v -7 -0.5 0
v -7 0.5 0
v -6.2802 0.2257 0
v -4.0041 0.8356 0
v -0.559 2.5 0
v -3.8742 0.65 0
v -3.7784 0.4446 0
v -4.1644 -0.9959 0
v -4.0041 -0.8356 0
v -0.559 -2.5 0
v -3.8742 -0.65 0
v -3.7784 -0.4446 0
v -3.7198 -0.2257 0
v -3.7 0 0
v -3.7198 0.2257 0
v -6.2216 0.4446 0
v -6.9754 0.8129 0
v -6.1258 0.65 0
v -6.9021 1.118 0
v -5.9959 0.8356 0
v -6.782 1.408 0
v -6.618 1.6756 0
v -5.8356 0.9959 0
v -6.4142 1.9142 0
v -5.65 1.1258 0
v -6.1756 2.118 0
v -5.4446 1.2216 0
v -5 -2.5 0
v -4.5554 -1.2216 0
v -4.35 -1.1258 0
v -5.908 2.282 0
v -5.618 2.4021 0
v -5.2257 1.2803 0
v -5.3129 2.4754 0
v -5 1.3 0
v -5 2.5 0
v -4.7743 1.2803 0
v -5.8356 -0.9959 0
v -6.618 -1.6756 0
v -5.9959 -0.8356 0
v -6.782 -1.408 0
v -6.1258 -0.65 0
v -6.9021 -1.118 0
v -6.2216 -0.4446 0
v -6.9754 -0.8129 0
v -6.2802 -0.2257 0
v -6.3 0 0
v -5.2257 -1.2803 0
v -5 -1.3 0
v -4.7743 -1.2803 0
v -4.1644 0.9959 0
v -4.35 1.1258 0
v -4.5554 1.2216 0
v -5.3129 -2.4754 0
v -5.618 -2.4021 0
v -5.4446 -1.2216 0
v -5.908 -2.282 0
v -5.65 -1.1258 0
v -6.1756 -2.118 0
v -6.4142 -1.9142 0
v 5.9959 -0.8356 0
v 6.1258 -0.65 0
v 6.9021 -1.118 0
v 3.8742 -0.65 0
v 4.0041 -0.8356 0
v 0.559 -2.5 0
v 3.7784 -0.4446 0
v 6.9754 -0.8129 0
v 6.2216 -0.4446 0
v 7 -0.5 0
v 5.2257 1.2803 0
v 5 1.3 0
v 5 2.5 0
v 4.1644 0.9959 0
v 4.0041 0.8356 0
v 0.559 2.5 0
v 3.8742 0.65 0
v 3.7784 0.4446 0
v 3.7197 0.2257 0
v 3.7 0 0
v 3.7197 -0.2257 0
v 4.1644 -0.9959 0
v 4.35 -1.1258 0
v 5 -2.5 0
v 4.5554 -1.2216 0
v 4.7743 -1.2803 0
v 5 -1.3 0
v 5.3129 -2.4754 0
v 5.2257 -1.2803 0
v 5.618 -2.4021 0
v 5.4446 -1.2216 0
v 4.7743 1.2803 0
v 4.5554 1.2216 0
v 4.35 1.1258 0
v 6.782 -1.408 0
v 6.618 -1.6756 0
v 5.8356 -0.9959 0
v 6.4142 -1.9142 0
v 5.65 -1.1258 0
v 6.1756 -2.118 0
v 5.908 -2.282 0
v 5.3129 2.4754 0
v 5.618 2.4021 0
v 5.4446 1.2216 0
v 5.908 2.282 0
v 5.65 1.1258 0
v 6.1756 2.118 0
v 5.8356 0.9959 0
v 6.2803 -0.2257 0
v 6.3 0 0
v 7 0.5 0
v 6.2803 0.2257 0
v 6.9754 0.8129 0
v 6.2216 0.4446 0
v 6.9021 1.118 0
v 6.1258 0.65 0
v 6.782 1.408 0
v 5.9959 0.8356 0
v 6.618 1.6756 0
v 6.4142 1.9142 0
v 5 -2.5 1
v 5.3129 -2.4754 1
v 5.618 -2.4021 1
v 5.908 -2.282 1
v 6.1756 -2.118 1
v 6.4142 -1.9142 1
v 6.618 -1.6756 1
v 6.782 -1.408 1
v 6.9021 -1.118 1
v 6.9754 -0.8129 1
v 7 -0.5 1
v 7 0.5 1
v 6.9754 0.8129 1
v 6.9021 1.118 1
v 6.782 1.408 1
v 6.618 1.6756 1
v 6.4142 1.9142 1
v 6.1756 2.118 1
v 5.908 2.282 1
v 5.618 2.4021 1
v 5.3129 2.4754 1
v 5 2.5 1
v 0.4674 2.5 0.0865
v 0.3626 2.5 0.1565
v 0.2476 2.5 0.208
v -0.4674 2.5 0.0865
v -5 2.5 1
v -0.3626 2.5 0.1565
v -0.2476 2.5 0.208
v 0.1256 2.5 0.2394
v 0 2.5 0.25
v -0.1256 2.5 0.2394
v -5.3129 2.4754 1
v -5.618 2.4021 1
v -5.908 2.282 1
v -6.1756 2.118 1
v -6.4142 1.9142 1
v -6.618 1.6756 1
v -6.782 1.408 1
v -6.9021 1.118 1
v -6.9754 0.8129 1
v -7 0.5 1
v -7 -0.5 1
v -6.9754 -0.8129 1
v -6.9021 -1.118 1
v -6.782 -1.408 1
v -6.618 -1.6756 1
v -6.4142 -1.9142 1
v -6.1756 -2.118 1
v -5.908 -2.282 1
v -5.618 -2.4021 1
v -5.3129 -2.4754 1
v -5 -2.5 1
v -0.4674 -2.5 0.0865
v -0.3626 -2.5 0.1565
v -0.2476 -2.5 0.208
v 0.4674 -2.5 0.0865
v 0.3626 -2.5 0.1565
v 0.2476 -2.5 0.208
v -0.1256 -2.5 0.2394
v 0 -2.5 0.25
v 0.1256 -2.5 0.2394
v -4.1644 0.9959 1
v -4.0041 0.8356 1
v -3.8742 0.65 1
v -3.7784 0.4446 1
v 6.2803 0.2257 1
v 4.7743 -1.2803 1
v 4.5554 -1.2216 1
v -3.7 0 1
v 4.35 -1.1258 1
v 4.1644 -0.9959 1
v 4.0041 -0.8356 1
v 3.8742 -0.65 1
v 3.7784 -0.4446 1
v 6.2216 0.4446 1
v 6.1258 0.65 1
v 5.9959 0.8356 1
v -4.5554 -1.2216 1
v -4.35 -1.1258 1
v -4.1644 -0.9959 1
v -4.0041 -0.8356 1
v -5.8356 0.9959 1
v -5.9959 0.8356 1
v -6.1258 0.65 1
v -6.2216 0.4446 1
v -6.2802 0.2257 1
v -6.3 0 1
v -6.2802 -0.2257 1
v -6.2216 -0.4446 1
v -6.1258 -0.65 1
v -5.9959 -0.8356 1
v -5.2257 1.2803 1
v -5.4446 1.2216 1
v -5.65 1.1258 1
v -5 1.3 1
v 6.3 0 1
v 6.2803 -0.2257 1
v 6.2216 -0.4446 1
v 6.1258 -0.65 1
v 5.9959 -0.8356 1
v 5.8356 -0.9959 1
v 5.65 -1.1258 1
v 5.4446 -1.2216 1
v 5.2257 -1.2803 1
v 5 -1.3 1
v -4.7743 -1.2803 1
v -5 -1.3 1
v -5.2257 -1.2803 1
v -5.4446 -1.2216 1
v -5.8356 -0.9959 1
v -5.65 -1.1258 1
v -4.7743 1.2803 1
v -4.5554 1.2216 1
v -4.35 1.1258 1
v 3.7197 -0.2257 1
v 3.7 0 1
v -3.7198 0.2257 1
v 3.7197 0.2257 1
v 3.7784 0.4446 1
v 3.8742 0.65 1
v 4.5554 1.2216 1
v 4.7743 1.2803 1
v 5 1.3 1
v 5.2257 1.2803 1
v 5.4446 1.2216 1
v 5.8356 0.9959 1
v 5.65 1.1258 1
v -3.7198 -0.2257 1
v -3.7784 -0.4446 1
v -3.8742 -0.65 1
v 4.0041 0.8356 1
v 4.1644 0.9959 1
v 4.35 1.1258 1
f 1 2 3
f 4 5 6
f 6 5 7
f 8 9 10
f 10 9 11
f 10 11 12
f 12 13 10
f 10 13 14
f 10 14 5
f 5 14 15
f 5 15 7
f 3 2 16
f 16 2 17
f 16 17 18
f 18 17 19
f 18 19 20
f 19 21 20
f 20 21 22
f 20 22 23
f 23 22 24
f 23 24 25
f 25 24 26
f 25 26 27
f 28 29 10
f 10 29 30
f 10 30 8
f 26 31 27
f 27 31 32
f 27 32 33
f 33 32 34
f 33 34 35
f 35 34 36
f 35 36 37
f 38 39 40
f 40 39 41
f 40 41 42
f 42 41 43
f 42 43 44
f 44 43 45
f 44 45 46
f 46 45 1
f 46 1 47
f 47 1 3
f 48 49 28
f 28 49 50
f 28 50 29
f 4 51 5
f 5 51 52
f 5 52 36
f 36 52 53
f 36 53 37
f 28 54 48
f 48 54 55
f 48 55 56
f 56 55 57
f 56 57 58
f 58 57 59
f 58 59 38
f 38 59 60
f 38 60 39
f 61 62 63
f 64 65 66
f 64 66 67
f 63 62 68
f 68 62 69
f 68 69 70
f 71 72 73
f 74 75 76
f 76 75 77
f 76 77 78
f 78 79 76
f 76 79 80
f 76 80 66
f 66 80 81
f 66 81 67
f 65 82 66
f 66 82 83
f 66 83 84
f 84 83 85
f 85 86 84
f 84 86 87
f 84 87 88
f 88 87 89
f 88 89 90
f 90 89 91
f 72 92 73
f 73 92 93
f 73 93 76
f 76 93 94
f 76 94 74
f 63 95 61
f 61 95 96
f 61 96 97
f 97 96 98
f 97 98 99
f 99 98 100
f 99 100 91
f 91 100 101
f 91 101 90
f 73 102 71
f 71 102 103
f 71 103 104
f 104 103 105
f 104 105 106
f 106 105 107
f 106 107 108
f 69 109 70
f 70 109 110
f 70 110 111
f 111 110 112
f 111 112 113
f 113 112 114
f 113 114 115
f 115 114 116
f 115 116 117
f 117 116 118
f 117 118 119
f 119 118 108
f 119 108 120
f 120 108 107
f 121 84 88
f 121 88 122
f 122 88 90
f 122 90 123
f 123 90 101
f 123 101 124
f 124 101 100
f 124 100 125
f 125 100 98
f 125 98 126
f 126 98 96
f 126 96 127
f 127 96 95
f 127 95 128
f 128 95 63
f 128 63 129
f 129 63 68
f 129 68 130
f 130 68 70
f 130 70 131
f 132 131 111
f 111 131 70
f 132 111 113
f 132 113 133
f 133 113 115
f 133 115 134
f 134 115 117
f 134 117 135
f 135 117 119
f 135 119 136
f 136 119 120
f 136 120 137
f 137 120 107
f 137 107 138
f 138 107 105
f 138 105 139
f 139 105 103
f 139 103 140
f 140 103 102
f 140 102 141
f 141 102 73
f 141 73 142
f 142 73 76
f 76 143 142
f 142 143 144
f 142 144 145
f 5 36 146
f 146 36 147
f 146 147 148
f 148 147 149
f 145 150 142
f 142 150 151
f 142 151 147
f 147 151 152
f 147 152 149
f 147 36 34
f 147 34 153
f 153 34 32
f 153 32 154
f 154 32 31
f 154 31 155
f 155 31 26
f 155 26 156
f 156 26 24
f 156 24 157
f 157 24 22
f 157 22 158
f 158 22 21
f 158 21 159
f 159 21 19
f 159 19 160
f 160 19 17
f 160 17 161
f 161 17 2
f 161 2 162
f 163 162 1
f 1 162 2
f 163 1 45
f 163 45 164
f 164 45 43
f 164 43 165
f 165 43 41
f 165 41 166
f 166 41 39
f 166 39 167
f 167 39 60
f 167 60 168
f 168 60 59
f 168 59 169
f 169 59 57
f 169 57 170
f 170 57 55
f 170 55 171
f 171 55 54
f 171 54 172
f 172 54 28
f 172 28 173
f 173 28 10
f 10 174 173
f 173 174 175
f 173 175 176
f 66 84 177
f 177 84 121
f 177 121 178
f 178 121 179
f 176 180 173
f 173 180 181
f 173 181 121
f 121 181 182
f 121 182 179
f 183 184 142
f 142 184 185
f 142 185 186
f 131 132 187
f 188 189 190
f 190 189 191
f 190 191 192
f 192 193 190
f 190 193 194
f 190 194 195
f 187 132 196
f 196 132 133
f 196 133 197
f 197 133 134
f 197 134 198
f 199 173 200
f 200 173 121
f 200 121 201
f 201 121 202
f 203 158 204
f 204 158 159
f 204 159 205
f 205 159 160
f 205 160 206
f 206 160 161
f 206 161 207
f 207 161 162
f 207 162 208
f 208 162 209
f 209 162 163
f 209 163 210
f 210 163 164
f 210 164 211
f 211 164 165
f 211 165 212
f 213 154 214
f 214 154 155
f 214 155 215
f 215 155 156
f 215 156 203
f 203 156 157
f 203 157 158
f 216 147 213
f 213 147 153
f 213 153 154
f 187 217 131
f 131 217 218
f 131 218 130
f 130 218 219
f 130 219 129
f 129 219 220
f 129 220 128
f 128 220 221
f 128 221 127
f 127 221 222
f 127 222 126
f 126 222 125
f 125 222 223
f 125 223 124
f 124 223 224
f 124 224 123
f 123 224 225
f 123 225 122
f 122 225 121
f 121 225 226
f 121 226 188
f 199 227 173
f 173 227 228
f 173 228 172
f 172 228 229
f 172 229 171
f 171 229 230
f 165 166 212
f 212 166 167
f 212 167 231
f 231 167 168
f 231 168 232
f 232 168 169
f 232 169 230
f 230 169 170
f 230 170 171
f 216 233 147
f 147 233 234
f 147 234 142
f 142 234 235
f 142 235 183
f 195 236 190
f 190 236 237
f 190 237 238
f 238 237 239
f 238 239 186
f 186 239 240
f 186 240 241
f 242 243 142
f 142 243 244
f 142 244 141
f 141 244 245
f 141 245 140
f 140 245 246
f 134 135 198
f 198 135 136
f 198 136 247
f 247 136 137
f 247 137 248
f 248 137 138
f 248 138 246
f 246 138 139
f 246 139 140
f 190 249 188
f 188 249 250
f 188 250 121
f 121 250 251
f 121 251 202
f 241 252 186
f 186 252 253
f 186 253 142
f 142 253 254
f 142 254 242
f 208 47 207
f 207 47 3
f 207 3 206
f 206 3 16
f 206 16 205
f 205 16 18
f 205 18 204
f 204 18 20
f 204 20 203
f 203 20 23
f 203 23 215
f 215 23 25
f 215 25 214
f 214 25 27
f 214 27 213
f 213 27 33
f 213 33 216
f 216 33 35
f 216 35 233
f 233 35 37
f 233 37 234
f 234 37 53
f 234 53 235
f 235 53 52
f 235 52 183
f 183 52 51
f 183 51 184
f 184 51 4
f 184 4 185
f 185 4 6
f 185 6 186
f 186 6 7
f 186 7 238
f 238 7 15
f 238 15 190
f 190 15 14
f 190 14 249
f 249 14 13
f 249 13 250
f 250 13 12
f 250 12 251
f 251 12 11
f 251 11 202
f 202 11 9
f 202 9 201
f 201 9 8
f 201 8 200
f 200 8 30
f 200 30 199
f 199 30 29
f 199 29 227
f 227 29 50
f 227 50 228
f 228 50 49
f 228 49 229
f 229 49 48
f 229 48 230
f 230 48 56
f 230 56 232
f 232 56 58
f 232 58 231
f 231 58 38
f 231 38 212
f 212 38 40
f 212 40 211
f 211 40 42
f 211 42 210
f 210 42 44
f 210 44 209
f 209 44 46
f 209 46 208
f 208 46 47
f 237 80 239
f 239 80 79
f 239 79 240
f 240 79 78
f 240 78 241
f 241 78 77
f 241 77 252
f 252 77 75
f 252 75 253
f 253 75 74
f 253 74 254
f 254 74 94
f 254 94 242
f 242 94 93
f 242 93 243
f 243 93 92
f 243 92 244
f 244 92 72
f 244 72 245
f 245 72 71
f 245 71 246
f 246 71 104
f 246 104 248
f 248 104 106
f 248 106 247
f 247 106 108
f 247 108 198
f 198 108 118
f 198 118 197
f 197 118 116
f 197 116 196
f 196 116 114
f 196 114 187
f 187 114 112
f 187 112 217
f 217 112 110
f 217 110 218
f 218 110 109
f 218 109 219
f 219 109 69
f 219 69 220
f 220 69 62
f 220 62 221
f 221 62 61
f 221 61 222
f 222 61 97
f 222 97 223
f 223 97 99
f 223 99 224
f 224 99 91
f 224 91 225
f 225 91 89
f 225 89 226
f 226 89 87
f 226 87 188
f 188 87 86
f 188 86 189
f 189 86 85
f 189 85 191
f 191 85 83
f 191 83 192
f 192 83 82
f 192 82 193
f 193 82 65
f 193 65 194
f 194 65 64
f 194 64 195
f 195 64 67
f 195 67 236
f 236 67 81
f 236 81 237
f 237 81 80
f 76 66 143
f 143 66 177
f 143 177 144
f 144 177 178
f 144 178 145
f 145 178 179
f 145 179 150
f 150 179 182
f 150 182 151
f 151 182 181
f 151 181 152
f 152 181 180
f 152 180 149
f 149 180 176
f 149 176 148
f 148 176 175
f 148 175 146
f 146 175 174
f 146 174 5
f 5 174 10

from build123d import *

# Parameters (mm, degrees)
BOSS_EXTRUDE1_DEPTH      = 1
M2_CLEARANCE_HOLE1_D     = 2.6
M2_CLEARANCE_HOLE1_DEPTH = 1
CUT_EXTRUDE1_REACH       = 7
SKETCH15_R               = 0.75


with BuildPart() as part:
    # Sketch2 → Boss-Extrude1 (new body)
    with BuildSketch(Plane.XY):
        with BuildLine():
            Line((-5, 2.5), (5, 2.5))
            ThreePointArc((5, 2.5), (6.414213562, 1.914213562), (7, 0.5))
            Line((7, 0.5), (7, -0.5))
            ThreePointArc((7, -0.5), (6.414213562, -1.914213562), (5, -2.5))
            Line((5, -2.5), (-5, -2.5))
            ThreePointArc((-5, -2.5), (-6.414213562, -1.914213562), (-7, -0.5))
            Line((-7, -0.5), (-7, 0.5))
            ThreePointArc((-7, 0.5), (-6.414213562, 1.914213562), (-5, 2.5))
        make_face()
    extrude(amount=BOSS_EXTRUDE1_DEPTH)

    # M2 Clearance Hole1
    with Locations(Plane(origin=(0, 0, 0), x_dir=(-1, 0, 0), z_dir=(0, 0, -1))):
        with Locations((-5, 0), (5, 0)):
            Hole(M2_CLEARANCE_HOLE1_D / 2, depth=M2_CLEARANCE_HOLE1_DEPTH)

    # Sketch15 → Cut-Extrude1 (cut, up to next)
    with BuildSketch(Plane.XZ.offset(2.5), mode=Mode.PRIVATE) as cut_extrude1_sk1:
        with Locations((0, -0.5)):
            Circle(SKETCH15_R)
    cut_extrude1_tool1 = extrude(cut_extrude1_sk1.sketch, amount=-CUT_EXTRUDE1_REACH, mode=Mode.PRIVATE) & part.part
    add(cut_extrude1_tool1.solids().sort_by_distance((0, -2.5, -0.5))[0], mode=Mode.SUBTRACT)


solid = part.part
